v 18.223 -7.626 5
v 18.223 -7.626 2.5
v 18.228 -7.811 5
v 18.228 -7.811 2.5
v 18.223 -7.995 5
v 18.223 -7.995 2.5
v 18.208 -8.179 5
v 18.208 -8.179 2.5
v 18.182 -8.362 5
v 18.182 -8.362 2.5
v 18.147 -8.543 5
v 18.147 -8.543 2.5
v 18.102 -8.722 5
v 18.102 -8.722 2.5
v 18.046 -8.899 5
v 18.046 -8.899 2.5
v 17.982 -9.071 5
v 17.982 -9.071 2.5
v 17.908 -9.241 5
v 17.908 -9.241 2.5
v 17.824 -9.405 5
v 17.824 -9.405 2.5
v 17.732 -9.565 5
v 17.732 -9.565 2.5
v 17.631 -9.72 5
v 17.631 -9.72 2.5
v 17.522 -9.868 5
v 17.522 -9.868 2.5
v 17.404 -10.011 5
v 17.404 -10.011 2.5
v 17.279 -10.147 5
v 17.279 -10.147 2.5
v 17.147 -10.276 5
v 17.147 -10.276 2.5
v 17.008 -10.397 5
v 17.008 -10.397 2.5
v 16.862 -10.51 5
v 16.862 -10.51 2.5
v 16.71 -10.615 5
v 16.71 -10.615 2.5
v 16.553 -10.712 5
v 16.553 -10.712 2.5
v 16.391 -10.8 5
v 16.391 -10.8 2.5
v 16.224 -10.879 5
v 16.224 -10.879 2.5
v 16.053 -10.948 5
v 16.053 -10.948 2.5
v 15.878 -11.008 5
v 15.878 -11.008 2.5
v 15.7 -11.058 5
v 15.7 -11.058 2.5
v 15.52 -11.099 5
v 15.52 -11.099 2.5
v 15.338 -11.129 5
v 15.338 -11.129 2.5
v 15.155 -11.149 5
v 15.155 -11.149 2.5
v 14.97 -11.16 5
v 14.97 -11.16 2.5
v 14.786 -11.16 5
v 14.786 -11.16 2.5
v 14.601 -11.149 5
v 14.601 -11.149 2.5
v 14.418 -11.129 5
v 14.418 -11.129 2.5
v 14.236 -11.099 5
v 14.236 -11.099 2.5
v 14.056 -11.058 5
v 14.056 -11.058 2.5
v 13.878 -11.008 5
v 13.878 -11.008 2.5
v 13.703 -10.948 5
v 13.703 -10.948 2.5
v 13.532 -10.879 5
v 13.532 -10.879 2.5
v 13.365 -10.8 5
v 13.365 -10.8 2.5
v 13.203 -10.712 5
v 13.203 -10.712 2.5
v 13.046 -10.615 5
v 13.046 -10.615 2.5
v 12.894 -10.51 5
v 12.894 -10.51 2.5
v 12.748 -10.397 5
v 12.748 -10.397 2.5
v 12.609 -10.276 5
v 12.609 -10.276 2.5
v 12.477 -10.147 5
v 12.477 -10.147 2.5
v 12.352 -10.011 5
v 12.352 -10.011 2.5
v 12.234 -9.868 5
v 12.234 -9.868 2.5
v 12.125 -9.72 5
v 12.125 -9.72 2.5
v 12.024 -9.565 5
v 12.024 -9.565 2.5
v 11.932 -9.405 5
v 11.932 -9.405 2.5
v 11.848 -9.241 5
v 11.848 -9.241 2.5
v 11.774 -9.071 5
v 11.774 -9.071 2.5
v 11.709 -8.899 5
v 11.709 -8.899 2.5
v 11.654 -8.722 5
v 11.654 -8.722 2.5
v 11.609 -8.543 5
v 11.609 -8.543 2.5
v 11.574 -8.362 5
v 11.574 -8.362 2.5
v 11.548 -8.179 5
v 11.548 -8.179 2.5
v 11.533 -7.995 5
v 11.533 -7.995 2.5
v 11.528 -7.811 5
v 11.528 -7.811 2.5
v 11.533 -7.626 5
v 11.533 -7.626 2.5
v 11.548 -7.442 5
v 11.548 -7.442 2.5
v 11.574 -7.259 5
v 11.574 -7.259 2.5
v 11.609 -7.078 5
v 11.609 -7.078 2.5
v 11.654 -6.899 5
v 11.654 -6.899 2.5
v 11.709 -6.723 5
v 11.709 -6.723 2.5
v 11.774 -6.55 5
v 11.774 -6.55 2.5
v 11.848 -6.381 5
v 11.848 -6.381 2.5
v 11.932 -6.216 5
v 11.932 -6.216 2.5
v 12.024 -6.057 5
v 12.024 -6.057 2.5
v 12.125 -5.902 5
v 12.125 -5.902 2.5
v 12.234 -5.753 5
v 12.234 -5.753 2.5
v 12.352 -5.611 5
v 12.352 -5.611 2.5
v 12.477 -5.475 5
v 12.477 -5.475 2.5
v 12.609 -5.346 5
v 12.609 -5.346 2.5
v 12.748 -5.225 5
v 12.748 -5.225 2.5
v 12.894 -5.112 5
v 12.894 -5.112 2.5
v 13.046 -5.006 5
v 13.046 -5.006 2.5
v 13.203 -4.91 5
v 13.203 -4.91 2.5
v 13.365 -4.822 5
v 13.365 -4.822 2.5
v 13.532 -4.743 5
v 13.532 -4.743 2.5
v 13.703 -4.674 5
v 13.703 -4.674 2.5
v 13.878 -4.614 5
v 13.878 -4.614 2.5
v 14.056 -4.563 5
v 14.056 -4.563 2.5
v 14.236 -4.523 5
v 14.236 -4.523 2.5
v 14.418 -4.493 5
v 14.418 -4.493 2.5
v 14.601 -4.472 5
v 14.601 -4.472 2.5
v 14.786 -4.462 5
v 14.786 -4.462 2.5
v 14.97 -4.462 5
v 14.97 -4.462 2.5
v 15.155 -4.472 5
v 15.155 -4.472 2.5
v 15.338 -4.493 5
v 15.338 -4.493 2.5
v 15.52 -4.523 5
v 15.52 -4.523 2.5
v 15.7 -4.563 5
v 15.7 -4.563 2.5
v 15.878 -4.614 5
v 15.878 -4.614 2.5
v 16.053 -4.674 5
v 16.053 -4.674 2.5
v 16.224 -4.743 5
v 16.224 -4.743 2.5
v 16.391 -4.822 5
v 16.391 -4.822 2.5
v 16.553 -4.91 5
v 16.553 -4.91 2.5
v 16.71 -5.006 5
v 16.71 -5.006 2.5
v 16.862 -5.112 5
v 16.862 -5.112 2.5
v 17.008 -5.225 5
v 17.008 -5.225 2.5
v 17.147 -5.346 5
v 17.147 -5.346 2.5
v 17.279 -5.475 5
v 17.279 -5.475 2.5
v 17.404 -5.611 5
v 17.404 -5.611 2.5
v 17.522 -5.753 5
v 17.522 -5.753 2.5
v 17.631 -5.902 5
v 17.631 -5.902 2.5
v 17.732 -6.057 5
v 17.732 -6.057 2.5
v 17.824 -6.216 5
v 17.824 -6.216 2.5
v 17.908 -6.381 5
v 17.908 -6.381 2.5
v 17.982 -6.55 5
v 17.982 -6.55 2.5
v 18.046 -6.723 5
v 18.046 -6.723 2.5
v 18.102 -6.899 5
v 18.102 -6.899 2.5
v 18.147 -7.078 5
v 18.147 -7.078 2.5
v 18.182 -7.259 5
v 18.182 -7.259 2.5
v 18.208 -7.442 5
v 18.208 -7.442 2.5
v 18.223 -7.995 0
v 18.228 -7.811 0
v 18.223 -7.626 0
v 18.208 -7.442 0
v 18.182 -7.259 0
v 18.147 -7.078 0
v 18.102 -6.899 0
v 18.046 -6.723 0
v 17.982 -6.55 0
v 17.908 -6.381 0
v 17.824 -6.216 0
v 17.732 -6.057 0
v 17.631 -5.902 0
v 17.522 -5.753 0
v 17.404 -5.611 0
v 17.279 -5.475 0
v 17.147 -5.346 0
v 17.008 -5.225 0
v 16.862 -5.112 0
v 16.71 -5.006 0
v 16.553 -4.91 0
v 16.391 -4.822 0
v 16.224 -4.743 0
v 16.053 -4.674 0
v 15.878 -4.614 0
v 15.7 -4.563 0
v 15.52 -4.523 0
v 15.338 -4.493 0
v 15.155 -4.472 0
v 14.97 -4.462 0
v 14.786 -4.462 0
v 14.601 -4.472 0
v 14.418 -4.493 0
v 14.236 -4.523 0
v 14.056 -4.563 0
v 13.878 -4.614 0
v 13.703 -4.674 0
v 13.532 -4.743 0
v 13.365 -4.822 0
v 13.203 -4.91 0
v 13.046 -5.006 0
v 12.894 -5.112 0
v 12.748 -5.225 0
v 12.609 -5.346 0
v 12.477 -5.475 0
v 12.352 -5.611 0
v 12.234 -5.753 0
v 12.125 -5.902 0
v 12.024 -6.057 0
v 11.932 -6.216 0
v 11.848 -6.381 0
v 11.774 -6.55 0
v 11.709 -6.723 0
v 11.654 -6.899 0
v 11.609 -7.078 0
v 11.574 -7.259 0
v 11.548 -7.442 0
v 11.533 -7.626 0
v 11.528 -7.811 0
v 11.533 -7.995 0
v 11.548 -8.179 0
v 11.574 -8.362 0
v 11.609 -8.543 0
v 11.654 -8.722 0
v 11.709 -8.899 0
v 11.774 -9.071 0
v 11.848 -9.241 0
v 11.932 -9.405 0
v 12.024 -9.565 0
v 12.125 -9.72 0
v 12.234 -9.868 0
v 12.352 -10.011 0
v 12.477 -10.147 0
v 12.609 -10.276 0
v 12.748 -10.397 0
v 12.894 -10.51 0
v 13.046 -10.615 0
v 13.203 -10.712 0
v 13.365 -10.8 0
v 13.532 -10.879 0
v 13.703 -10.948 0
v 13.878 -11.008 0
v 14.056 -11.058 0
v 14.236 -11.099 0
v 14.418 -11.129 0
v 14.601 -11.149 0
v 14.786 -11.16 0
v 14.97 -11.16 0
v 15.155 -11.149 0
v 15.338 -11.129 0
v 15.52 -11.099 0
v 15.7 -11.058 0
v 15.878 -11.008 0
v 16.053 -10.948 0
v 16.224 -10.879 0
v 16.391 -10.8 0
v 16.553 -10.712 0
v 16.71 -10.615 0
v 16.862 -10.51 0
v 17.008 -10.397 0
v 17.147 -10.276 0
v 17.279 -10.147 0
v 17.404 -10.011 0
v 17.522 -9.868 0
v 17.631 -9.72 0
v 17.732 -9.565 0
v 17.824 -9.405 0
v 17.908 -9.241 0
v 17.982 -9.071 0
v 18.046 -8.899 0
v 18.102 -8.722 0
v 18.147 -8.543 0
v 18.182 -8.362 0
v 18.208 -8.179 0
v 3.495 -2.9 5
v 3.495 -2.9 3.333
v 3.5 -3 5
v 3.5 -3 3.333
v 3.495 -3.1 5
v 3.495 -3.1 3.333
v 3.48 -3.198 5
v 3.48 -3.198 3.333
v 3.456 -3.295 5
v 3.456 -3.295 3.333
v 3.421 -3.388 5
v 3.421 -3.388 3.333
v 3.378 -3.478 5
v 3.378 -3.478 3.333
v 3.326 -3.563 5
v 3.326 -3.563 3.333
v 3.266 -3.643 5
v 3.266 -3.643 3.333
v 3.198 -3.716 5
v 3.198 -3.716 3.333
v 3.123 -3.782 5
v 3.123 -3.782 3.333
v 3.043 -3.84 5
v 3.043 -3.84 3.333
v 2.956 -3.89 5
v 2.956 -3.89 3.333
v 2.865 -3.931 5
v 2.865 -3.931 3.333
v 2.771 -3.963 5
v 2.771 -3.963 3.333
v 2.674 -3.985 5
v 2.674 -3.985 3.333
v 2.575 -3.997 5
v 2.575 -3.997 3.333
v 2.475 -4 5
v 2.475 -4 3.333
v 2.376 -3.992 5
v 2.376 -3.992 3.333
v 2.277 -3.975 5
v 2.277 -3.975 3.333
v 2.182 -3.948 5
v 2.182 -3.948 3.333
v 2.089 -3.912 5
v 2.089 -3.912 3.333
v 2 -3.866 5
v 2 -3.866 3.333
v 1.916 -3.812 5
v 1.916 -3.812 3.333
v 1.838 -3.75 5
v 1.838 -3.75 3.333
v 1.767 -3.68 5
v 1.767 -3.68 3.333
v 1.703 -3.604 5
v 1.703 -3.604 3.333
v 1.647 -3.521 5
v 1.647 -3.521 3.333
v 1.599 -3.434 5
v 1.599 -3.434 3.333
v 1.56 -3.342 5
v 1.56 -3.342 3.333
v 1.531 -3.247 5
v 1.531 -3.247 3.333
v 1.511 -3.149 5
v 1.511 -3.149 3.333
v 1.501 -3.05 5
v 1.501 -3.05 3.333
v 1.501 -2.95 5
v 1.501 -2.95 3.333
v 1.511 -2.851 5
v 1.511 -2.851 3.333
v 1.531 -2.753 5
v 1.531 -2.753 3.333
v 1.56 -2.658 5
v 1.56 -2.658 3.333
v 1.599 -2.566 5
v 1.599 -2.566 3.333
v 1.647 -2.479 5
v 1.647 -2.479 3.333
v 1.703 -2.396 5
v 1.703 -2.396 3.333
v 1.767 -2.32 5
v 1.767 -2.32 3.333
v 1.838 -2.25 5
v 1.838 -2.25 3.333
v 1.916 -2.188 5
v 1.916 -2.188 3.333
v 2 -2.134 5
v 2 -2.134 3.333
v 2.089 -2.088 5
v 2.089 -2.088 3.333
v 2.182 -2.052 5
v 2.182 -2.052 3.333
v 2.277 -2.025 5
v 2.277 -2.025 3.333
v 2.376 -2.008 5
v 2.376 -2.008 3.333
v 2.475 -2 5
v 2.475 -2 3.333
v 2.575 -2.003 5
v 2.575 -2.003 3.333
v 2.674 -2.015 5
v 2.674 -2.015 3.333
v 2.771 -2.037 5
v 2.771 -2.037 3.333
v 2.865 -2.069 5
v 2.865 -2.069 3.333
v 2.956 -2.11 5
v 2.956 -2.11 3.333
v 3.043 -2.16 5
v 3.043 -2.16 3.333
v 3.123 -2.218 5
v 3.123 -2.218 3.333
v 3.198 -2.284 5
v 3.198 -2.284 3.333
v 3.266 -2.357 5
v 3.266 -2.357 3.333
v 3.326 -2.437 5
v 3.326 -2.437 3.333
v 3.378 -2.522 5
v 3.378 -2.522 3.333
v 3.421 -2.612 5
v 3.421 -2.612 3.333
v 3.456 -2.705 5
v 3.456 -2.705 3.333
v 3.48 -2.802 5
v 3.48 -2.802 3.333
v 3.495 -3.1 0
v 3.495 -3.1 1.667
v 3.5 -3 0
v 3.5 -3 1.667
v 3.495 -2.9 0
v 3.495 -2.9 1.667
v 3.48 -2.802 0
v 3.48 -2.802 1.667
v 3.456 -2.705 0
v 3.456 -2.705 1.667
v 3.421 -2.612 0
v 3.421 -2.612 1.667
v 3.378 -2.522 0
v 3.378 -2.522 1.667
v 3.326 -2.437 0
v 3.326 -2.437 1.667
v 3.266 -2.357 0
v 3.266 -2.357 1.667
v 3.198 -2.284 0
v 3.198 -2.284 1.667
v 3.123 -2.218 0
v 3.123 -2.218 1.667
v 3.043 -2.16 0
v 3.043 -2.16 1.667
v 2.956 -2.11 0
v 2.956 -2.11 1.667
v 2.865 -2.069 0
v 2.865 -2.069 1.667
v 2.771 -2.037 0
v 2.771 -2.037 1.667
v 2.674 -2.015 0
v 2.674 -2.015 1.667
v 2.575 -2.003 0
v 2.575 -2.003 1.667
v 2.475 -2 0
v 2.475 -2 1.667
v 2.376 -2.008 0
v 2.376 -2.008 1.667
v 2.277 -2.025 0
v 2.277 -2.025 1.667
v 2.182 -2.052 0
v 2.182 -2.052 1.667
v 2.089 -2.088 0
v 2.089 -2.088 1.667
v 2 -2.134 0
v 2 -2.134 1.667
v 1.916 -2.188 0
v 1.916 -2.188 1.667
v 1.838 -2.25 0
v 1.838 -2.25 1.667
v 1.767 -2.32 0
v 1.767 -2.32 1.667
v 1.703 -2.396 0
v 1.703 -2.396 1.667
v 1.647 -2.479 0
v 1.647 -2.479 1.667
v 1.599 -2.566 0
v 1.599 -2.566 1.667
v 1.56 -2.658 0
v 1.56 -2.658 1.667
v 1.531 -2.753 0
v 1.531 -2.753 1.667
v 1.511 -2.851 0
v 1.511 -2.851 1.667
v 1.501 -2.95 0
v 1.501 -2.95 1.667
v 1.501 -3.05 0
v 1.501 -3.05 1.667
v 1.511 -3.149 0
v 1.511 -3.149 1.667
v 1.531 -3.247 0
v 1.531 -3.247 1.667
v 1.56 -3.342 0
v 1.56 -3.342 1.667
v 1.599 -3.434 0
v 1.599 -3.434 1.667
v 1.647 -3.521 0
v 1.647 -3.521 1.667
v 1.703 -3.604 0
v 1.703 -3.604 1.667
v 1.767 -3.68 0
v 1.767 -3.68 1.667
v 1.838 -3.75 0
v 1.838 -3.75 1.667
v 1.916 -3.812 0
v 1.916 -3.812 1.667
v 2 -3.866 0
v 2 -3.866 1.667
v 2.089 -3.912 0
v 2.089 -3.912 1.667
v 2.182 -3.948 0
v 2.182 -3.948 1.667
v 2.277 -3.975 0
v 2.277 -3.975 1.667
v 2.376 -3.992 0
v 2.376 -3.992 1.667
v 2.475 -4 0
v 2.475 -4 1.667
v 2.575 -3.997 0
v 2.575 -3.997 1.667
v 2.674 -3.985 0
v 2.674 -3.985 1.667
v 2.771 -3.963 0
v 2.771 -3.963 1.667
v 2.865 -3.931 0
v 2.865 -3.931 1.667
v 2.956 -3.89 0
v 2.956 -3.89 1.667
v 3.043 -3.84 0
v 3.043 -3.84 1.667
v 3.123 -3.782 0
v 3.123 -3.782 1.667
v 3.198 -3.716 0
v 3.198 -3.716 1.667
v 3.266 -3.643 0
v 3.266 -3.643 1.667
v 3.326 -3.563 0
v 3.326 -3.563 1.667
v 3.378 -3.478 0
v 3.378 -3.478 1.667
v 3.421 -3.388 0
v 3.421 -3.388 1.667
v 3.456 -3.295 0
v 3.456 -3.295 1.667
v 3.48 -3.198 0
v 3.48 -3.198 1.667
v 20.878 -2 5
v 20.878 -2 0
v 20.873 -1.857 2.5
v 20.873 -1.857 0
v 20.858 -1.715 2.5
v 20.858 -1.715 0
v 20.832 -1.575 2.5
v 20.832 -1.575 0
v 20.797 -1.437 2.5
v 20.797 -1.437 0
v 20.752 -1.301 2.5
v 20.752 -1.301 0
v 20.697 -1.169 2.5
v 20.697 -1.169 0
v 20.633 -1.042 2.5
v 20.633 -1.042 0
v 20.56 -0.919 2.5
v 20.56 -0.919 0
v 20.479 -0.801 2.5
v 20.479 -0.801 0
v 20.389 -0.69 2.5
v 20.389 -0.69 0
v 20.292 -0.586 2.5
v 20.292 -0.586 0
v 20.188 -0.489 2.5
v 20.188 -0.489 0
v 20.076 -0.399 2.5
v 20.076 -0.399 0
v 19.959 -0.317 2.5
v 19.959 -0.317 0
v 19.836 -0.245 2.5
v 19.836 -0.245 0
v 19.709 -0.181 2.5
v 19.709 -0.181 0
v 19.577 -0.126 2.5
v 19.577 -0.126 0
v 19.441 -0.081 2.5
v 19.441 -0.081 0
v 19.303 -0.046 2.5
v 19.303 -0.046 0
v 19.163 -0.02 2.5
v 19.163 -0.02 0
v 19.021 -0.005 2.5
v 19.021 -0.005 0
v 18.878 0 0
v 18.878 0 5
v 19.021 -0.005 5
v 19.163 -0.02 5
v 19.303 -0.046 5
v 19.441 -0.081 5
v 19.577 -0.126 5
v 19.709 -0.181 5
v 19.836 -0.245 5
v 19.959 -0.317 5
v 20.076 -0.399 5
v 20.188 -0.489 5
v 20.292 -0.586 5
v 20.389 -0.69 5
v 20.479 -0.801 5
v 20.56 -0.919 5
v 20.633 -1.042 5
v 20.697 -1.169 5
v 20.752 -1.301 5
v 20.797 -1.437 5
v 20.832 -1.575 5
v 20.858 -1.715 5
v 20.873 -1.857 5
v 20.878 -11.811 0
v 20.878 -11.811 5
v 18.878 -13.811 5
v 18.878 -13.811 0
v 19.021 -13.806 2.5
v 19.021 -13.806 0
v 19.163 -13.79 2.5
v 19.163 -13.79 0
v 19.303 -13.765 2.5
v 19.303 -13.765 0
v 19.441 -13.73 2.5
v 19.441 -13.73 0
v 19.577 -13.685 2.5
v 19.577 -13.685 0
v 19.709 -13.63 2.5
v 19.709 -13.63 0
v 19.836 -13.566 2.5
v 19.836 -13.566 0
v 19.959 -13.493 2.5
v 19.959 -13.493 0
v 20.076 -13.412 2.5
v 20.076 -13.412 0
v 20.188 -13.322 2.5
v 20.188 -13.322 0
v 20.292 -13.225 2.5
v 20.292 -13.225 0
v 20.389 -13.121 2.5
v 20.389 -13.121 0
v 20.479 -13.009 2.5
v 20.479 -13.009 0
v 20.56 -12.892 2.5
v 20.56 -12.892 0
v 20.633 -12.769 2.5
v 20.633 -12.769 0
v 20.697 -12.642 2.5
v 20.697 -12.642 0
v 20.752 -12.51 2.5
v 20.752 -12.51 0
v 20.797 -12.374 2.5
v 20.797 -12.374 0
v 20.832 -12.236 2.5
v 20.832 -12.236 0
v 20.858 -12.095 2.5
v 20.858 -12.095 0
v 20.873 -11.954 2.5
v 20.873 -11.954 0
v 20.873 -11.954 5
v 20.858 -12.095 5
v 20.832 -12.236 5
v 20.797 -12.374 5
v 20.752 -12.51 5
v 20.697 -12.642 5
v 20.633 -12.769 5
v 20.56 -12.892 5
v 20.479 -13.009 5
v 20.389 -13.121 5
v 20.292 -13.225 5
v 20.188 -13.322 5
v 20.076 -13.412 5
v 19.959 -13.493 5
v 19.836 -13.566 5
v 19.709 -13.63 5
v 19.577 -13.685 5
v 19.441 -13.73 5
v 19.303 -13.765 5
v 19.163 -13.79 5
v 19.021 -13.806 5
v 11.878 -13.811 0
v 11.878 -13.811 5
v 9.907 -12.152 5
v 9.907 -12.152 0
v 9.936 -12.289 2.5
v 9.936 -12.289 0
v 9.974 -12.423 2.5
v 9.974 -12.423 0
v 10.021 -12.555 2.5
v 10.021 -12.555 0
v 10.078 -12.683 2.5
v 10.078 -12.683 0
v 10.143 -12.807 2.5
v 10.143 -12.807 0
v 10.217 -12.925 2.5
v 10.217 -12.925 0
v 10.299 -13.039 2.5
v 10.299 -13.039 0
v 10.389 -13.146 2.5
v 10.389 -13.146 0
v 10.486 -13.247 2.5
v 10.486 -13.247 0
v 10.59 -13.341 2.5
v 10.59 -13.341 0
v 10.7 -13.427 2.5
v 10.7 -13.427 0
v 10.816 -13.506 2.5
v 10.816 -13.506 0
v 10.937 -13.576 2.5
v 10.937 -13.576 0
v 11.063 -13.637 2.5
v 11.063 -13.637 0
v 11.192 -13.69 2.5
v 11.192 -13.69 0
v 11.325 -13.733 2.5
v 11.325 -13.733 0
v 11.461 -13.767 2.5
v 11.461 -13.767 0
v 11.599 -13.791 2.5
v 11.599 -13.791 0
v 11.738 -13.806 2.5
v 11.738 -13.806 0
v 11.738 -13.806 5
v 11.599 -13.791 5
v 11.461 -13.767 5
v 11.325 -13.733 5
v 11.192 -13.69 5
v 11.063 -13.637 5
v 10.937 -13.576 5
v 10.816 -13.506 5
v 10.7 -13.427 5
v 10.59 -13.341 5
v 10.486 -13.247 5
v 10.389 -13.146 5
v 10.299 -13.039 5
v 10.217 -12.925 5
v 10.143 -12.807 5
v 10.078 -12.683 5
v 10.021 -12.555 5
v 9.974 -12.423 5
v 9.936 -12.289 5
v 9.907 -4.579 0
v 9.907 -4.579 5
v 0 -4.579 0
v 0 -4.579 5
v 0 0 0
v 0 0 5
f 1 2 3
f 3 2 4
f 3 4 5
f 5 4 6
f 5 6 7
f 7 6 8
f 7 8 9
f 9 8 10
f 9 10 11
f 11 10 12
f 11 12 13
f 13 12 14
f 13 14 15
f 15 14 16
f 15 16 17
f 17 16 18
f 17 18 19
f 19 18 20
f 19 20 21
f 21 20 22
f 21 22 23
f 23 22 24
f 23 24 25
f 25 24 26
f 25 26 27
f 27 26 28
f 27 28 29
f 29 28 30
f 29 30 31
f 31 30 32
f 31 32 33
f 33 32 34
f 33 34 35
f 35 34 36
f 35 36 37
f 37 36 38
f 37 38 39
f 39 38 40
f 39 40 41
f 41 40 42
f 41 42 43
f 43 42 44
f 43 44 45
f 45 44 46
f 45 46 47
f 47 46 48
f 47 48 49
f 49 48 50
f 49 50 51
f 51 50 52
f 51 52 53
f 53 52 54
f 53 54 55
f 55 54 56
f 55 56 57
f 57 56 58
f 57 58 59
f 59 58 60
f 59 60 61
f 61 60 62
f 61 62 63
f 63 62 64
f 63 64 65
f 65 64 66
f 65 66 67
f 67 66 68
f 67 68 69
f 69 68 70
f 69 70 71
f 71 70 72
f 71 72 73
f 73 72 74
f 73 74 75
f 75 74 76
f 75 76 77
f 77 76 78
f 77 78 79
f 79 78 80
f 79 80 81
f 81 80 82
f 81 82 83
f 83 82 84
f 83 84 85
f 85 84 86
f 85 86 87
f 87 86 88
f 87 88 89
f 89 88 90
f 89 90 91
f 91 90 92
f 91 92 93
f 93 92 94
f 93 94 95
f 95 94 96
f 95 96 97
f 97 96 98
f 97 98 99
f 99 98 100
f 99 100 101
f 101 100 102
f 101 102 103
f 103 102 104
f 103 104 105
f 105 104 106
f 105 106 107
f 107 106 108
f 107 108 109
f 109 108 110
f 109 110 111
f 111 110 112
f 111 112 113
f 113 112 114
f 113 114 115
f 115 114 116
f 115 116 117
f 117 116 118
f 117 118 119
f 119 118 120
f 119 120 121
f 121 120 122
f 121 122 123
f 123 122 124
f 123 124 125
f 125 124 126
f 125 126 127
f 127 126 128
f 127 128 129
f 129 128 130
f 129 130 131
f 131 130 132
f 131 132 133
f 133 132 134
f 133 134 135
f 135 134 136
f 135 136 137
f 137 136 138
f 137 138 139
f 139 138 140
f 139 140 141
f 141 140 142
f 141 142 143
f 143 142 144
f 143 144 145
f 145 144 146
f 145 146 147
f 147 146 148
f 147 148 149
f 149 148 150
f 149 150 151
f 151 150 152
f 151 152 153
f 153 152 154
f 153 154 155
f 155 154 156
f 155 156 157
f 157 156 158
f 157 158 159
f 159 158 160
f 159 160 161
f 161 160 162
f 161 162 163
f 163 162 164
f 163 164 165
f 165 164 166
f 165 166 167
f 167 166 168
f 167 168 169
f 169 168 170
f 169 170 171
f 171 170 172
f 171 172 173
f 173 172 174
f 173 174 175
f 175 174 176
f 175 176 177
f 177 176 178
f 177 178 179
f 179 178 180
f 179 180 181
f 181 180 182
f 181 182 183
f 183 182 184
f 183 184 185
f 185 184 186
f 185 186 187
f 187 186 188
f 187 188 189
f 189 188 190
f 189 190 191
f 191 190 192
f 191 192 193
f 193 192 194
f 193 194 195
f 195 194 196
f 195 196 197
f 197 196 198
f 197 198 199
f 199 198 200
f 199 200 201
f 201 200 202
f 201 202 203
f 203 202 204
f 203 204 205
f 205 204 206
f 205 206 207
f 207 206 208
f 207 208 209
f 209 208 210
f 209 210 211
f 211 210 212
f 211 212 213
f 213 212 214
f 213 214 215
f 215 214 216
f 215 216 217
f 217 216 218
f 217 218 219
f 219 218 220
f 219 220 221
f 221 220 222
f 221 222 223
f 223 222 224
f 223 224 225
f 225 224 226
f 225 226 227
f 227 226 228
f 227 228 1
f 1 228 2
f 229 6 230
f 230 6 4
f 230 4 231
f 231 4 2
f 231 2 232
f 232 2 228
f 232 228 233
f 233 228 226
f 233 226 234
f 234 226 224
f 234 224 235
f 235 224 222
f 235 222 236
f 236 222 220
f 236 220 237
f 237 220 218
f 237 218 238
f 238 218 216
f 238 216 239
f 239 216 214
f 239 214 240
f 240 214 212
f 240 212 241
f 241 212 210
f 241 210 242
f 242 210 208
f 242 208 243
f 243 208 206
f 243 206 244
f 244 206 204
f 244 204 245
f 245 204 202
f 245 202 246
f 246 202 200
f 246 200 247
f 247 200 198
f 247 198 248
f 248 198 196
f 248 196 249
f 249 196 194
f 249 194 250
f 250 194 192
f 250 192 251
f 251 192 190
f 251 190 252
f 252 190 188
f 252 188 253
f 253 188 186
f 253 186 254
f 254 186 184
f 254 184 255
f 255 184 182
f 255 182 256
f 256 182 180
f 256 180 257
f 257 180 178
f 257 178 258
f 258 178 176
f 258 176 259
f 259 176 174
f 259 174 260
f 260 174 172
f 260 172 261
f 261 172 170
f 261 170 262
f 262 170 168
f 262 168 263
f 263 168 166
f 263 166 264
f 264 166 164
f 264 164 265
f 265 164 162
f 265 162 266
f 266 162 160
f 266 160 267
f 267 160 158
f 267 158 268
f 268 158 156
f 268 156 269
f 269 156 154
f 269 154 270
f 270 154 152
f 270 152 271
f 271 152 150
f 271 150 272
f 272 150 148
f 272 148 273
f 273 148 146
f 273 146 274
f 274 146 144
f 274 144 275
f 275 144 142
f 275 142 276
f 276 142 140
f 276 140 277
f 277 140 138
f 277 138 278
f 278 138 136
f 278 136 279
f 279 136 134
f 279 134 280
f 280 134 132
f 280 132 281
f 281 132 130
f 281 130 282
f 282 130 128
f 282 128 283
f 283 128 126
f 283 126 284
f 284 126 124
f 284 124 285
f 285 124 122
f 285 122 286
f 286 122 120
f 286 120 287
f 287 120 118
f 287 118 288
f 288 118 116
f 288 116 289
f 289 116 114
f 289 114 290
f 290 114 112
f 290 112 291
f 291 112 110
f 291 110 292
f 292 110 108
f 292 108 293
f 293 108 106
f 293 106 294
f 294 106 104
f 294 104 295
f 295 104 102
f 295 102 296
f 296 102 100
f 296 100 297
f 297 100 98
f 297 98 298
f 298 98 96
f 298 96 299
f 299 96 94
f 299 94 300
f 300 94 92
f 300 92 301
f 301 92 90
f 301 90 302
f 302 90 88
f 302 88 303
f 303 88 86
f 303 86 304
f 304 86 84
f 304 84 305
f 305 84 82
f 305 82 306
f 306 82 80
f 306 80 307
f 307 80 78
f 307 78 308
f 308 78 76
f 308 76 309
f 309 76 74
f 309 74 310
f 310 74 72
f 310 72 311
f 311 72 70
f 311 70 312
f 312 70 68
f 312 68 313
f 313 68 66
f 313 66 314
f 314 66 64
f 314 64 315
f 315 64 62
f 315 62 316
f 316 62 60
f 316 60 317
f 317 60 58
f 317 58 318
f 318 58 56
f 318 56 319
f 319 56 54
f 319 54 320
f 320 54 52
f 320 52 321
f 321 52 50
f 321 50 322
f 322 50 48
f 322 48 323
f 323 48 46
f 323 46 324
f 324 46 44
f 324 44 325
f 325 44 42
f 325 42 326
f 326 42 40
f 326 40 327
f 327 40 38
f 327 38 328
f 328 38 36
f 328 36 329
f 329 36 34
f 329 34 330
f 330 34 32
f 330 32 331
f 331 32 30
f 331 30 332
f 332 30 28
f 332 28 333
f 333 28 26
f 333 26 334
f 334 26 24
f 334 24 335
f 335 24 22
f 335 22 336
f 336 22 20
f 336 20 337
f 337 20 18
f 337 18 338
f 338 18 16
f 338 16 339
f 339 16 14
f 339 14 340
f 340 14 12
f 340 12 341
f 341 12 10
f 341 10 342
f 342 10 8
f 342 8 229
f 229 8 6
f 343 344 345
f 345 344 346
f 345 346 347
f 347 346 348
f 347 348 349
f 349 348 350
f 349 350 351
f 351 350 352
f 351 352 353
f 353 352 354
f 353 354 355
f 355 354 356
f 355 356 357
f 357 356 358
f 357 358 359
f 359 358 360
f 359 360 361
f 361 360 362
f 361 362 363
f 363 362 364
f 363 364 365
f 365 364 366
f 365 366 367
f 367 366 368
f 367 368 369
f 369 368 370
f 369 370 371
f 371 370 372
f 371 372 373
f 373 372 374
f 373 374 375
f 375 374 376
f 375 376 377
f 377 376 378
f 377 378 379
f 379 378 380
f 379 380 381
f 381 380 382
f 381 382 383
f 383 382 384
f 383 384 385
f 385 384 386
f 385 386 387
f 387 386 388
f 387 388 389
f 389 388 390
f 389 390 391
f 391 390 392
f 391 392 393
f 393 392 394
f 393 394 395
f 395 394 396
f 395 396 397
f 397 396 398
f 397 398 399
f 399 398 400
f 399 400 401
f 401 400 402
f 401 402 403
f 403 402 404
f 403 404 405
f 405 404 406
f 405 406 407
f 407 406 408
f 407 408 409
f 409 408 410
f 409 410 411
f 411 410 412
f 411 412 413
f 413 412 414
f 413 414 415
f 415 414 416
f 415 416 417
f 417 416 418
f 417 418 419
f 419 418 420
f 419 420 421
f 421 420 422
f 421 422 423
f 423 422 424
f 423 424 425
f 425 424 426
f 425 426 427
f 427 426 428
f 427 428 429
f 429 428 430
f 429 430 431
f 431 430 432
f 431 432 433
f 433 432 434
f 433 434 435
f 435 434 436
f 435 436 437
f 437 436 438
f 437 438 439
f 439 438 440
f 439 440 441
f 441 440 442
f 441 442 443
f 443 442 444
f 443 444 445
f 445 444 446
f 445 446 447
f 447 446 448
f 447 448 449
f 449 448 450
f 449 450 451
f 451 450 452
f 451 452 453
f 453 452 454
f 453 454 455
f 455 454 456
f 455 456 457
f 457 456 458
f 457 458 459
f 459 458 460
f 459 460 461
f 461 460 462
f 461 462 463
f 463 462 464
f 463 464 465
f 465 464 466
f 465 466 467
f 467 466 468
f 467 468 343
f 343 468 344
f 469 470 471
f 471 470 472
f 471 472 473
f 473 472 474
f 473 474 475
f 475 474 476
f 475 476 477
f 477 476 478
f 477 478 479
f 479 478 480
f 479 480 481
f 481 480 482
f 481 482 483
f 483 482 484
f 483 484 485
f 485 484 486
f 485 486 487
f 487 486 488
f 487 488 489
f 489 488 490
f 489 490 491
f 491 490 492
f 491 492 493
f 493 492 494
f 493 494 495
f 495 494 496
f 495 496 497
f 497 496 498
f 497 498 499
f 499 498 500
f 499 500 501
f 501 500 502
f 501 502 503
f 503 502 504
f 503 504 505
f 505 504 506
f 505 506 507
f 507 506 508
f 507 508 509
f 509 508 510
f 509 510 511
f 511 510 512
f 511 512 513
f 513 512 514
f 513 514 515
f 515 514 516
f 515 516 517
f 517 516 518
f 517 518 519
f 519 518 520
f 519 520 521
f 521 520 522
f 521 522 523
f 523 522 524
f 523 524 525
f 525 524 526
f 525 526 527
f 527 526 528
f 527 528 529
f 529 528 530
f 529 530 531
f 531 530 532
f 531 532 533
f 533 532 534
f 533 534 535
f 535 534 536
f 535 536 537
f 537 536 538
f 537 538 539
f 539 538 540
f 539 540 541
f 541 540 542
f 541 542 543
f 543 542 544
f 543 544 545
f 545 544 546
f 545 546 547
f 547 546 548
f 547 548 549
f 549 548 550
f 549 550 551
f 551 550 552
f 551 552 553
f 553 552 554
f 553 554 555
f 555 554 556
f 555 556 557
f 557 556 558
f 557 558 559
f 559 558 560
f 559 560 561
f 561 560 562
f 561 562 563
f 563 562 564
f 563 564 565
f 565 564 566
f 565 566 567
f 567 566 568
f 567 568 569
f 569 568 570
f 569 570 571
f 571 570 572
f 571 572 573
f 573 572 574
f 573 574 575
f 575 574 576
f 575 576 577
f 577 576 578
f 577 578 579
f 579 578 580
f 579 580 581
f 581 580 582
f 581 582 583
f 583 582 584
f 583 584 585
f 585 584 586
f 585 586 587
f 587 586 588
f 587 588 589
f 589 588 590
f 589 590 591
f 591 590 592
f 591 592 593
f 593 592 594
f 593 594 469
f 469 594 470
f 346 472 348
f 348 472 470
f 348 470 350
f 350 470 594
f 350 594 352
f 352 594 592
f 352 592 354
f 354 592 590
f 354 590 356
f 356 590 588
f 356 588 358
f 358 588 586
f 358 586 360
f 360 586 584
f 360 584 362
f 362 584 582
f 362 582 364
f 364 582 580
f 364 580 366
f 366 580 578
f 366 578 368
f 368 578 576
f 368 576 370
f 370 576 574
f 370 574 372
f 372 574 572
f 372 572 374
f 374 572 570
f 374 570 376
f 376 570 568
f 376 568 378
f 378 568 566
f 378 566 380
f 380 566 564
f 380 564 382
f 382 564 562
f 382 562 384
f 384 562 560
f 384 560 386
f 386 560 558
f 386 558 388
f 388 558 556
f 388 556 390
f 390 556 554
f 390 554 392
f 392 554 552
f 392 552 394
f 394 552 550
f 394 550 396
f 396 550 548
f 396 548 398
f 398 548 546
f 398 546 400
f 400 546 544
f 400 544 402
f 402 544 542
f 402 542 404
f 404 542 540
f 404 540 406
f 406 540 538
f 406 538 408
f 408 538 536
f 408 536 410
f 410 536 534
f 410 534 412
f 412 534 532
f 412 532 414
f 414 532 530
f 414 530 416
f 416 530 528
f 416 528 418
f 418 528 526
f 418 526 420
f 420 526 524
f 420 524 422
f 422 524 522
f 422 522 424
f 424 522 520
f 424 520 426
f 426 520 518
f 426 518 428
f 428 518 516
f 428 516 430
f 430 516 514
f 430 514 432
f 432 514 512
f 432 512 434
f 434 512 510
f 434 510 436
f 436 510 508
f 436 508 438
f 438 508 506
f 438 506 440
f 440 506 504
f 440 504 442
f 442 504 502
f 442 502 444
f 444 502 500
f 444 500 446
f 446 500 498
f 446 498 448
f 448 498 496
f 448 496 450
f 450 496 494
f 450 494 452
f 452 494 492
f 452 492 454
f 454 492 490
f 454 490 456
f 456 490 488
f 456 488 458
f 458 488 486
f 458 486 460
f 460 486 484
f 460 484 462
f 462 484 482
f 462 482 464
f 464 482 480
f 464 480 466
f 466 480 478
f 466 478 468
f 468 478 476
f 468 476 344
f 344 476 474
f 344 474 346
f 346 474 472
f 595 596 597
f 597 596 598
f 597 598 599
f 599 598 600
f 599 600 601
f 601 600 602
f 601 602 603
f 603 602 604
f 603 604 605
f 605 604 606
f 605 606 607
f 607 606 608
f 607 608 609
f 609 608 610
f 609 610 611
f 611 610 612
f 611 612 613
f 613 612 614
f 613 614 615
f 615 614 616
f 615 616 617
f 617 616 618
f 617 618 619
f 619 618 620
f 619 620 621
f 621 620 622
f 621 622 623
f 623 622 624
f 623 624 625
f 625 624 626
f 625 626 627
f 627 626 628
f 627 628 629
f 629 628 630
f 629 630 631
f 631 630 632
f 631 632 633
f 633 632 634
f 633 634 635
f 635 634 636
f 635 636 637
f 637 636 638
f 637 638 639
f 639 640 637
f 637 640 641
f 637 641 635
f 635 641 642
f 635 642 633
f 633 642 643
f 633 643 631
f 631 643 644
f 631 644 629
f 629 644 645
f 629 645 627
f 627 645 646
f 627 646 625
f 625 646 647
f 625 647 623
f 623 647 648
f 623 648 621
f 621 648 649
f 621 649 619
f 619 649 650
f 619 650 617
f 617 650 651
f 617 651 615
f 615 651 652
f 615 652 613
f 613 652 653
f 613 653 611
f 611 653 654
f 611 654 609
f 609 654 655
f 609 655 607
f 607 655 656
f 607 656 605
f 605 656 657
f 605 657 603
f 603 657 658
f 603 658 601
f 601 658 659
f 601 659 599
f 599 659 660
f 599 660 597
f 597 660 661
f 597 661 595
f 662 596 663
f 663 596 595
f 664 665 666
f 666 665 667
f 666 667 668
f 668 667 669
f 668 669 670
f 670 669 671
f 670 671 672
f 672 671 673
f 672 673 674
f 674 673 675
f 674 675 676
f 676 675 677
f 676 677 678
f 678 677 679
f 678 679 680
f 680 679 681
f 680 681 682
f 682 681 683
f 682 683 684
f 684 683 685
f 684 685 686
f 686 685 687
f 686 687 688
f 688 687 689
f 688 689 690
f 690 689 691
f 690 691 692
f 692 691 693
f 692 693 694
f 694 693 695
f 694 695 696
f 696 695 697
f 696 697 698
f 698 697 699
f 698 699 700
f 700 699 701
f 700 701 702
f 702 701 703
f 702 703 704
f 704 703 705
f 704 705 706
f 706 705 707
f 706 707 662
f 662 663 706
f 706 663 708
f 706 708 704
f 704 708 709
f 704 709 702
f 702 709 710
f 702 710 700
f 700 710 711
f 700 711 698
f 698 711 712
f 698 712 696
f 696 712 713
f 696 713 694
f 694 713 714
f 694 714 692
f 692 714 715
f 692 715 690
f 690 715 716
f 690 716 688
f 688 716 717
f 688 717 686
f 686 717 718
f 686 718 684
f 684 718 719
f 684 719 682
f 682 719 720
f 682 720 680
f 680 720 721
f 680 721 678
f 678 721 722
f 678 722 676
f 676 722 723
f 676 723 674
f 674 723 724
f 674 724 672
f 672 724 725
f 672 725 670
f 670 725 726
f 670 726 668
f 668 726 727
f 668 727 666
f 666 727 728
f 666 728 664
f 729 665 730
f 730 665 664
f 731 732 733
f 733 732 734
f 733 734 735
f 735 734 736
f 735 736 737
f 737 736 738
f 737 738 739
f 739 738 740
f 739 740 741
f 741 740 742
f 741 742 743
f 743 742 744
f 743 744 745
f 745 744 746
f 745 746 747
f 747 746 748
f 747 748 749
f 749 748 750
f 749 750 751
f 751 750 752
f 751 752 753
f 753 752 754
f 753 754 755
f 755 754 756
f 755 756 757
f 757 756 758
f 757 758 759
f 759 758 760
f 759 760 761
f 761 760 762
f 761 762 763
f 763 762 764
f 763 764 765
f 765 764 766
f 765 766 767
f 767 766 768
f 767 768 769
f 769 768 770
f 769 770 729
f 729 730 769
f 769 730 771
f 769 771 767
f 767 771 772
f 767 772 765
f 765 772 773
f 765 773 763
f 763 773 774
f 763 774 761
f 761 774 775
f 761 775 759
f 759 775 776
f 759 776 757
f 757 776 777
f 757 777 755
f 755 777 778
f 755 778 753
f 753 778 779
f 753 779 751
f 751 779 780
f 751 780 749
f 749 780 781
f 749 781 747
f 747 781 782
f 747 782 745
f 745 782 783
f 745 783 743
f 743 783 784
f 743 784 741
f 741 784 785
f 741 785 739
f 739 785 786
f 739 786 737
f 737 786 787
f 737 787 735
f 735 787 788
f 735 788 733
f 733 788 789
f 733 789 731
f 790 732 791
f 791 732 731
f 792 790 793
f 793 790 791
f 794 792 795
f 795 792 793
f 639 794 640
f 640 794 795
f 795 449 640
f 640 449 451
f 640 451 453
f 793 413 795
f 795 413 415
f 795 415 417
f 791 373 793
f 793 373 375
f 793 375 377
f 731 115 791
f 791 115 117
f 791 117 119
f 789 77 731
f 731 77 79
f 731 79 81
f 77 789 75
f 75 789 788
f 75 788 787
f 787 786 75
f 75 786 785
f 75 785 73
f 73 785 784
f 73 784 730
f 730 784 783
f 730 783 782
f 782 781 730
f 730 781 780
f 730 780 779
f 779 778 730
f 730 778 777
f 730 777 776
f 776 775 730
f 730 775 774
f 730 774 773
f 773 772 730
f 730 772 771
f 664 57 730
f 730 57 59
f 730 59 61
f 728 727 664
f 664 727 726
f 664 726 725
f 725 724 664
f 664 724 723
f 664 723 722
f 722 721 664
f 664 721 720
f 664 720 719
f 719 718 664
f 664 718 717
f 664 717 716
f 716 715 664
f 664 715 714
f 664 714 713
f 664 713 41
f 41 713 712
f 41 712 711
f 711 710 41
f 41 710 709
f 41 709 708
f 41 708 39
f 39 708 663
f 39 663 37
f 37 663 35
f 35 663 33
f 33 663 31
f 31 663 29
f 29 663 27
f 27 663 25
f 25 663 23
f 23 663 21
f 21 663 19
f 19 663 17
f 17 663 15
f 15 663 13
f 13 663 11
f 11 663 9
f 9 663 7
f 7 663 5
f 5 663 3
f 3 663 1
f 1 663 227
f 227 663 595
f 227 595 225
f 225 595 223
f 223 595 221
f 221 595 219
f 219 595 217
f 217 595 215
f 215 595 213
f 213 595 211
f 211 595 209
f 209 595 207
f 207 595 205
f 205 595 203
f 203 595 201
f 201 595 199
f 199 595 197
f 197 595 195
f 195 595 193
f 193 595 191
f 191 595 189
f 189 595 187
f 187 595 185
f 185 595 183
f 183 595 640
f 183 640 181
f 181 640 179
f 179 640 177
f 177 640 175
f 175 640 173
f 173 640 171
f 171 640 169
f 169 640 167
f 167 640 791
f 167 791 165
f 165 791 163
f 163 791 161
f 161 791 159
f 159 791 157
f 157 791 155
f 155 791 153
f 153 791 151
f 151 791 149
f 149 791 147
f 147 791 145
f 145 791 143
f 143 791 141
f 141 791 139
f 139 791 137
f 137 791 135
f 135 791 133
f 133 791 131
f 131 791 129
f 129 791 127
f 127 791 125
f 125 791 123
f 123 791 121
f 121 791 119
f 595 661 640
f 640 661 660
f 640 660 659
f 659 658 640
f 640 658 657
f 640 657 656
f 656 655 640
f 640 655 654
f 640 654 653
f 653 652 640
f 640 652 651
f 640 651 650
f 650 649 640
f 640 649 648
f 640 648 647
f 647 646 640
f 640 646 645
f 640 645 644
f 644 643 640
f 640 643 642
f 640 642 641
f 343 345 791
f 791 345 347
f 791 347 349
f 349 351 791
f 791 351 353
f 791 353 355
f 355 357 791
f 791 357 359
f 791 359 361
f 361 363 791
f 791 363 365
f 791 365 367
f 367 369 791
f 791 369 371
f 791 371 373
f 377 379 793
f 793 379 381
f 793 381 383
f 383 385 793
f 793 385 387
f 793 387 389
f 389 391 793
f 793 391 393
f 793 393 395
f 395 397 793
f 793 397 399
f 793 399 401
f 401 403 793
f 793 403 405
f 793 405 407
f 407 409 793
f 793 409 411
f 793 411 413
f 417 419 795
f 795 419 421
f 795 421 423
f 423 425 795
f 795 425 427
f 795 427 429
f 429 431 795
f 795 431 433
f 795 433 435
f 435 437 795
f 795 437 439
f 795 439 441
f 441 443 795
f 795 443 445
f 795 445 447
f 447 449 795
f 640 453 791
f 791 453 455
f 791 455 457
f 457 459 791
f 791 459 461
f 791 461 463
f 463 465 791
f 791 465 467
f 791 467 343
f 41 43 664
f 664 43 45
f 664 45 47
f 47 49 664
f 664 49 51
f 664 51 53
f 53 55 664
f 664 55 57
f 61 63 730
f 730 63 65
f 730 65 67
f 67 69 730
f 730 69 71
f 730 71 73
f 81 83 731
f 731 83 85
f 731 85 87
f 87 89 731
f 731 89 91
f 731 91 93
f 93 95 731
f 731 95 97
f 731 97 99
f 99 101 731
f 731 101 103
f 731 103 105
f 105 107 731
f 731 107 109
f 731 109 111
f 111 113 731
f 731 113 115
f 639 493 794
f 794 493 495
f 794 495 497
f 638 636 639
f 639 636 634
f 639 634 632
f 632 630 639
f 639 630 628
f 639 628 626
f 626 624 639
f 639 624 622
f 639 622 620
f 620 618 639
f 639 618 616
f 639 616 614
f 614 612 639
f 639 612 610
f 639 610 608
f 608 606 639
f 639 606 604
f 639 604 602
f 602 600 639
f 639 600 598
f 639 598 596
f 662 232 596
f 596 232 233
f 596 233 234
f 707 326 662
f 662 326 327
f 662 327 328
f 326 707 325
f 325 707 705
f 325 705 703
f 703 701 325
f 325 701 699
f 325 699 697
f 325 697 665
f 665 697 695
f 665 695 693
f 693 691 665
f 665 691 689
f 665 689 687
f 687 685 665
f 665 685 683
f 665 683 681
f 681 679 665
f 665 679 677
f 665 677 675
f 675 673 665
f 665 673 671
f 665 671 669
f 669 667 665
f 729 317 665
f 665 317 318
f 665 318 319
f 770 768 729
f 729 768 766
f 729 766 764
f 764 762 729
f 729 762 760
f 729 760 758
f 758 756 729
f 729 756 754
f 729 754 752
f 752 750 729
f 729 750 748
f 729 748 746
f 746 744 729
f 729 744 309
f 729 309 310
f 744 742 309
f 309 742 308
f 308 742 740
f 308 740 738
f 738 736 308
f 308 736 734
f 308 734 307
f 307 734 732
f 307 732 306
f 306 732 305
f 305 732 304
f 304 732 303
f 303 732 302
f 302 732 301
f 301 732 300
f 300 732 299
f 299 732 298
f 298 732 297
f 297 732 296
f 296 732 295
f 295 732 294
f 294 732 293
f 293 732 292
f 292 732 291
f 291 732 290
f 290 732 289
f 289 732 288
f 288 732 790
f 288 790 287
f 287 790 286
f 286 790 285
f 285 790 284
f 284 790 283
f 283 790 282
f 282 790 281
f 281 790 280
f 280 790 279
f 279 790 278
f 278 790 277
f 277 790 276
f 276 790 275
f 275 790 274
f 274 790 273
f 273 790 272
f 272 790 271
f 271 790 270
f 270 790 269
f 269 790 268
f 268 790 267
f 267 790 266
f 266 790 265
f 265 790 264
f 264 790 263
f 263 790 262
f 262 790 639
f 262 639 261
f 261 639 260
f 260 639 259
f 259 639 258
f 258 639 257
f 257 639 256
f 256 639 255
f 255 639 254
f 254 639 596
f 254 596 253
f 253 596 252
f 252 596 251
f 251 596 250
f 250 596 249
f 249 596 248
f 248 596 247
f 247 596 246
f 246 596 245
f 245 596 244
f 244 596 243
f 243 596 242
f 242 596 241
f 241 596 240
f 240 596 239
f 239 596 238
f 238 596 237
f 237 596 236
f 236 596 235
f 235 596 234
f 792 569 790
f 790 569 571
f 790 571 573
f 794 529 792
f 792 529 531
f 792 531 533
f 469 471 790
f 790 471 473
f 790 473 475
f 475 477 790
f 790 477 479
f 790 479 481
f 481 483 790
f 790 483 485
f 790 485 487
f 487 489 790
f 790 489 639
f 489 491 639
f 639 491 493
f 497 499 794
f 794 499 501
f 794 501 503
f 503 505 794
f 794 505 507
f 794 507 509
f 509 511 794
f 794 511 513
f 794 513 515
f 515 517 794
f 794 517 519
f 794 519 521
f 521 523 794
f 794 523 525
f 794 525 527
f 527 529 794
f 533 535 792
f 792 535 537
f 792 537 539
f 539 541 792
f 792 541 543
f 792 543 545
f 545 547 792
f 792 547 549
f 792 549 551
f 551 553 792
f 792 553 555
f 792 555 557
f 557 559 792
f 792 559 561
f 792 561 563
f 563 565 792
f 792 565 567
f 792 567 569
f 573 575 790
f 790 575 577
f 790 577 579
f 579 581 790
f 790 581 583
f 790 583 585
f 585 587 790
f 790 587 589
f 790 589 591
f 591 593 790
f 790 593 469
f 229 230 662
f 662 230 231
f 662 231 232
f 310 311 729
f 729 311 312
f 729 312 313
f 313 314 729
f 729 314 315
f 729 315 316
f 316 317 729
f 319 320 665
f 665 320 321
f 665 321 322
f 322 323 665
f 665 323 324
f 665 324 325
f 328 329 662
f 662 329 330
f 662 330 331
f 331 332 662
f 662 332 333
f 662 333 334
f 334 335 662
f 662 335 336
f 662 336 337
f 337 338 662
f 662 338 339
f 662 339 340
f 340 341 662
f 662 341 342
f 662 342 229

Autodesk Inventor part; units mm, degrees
ref_plane "YZ Plane" through (0, 0, 0) normal (1, 0, 0) x (0, 1, 0)
ref_plane "XZ Plane" through (0, 0, 0) normal (0, 1, 0) x (-1, 0, 0)
ref_plane "XY Plane" through (0, 0, 0) normal (0, 0, 1) x (1, 0, 0)
sketch "Skizze1" plane through (0, 0, 0) normal (0, 0, 1) x (1, 0, 0)
  circle A0 centre (2.5, -3) radius 0.5 projected
  line L0 (0, 0) -> (0, -6) projected
  line L1 (0, -6) -> (5, -6) projected
  line L2 (5, 0) -> (5, -6) projected
  line L3 (0, 0) -> (5, 0) projected
  circle A1 centre (14.8779, -7.8108) radius 3.9802 projected
  line L4 (5, 0) -> (18.8779, 0)
  line L5 (20.8779, -2) -> (20.8779, -11.8108)
  line L6 (18.8779, -13.8108) -> (11.8779, -13.8108)
  line L7 (9.8779, -11.8108) -> (9.8779, -6)
  line L8 (9.8779, -6) -> (5, -6)
  arc A2 (9.8779, -11.8108) -> (11.8779, -13.8108) centre (11.8779, -11.8108) ccw
  arc A3 (18.8779, -13.8108) -> (20.8779, -11.8108) centre (18.8779, -11.8108) ccw
  arc A4 (20.8779, -2) -> (18.8779, 0) centre (18.8779, -2) ccw
  line L9 (0, -4.579) -> (9.9072, -4.579)
  line L10 (9.9072, -4.579) -> (9.9072, -13.8108)
  line L11 (9.9072, -13.8108) -> (11.8779, -13.8108)
  circle A5 centre (2.5, -3) radius 1
  circle A6 centre (14.8779, -7.8108) radius 3.35
  point P0 (9.9072, -12.1516)
  dimension "d0" = 6
  dimension "d1" = 5
  dimension "d2" = 6
  dimension "d3" = 2
  dimension "d9" = 2
  dimension "d10" = 6.7
extrude "Extrusion1" add sketch "Skizze1" along normal blind 5 contours L3 L2 L9 L0 | L4 A4 L5 A3 L6 A2 L10 L9 L2 | A1
properties part number "IM_Lensholder_motorized_lensadapter"
